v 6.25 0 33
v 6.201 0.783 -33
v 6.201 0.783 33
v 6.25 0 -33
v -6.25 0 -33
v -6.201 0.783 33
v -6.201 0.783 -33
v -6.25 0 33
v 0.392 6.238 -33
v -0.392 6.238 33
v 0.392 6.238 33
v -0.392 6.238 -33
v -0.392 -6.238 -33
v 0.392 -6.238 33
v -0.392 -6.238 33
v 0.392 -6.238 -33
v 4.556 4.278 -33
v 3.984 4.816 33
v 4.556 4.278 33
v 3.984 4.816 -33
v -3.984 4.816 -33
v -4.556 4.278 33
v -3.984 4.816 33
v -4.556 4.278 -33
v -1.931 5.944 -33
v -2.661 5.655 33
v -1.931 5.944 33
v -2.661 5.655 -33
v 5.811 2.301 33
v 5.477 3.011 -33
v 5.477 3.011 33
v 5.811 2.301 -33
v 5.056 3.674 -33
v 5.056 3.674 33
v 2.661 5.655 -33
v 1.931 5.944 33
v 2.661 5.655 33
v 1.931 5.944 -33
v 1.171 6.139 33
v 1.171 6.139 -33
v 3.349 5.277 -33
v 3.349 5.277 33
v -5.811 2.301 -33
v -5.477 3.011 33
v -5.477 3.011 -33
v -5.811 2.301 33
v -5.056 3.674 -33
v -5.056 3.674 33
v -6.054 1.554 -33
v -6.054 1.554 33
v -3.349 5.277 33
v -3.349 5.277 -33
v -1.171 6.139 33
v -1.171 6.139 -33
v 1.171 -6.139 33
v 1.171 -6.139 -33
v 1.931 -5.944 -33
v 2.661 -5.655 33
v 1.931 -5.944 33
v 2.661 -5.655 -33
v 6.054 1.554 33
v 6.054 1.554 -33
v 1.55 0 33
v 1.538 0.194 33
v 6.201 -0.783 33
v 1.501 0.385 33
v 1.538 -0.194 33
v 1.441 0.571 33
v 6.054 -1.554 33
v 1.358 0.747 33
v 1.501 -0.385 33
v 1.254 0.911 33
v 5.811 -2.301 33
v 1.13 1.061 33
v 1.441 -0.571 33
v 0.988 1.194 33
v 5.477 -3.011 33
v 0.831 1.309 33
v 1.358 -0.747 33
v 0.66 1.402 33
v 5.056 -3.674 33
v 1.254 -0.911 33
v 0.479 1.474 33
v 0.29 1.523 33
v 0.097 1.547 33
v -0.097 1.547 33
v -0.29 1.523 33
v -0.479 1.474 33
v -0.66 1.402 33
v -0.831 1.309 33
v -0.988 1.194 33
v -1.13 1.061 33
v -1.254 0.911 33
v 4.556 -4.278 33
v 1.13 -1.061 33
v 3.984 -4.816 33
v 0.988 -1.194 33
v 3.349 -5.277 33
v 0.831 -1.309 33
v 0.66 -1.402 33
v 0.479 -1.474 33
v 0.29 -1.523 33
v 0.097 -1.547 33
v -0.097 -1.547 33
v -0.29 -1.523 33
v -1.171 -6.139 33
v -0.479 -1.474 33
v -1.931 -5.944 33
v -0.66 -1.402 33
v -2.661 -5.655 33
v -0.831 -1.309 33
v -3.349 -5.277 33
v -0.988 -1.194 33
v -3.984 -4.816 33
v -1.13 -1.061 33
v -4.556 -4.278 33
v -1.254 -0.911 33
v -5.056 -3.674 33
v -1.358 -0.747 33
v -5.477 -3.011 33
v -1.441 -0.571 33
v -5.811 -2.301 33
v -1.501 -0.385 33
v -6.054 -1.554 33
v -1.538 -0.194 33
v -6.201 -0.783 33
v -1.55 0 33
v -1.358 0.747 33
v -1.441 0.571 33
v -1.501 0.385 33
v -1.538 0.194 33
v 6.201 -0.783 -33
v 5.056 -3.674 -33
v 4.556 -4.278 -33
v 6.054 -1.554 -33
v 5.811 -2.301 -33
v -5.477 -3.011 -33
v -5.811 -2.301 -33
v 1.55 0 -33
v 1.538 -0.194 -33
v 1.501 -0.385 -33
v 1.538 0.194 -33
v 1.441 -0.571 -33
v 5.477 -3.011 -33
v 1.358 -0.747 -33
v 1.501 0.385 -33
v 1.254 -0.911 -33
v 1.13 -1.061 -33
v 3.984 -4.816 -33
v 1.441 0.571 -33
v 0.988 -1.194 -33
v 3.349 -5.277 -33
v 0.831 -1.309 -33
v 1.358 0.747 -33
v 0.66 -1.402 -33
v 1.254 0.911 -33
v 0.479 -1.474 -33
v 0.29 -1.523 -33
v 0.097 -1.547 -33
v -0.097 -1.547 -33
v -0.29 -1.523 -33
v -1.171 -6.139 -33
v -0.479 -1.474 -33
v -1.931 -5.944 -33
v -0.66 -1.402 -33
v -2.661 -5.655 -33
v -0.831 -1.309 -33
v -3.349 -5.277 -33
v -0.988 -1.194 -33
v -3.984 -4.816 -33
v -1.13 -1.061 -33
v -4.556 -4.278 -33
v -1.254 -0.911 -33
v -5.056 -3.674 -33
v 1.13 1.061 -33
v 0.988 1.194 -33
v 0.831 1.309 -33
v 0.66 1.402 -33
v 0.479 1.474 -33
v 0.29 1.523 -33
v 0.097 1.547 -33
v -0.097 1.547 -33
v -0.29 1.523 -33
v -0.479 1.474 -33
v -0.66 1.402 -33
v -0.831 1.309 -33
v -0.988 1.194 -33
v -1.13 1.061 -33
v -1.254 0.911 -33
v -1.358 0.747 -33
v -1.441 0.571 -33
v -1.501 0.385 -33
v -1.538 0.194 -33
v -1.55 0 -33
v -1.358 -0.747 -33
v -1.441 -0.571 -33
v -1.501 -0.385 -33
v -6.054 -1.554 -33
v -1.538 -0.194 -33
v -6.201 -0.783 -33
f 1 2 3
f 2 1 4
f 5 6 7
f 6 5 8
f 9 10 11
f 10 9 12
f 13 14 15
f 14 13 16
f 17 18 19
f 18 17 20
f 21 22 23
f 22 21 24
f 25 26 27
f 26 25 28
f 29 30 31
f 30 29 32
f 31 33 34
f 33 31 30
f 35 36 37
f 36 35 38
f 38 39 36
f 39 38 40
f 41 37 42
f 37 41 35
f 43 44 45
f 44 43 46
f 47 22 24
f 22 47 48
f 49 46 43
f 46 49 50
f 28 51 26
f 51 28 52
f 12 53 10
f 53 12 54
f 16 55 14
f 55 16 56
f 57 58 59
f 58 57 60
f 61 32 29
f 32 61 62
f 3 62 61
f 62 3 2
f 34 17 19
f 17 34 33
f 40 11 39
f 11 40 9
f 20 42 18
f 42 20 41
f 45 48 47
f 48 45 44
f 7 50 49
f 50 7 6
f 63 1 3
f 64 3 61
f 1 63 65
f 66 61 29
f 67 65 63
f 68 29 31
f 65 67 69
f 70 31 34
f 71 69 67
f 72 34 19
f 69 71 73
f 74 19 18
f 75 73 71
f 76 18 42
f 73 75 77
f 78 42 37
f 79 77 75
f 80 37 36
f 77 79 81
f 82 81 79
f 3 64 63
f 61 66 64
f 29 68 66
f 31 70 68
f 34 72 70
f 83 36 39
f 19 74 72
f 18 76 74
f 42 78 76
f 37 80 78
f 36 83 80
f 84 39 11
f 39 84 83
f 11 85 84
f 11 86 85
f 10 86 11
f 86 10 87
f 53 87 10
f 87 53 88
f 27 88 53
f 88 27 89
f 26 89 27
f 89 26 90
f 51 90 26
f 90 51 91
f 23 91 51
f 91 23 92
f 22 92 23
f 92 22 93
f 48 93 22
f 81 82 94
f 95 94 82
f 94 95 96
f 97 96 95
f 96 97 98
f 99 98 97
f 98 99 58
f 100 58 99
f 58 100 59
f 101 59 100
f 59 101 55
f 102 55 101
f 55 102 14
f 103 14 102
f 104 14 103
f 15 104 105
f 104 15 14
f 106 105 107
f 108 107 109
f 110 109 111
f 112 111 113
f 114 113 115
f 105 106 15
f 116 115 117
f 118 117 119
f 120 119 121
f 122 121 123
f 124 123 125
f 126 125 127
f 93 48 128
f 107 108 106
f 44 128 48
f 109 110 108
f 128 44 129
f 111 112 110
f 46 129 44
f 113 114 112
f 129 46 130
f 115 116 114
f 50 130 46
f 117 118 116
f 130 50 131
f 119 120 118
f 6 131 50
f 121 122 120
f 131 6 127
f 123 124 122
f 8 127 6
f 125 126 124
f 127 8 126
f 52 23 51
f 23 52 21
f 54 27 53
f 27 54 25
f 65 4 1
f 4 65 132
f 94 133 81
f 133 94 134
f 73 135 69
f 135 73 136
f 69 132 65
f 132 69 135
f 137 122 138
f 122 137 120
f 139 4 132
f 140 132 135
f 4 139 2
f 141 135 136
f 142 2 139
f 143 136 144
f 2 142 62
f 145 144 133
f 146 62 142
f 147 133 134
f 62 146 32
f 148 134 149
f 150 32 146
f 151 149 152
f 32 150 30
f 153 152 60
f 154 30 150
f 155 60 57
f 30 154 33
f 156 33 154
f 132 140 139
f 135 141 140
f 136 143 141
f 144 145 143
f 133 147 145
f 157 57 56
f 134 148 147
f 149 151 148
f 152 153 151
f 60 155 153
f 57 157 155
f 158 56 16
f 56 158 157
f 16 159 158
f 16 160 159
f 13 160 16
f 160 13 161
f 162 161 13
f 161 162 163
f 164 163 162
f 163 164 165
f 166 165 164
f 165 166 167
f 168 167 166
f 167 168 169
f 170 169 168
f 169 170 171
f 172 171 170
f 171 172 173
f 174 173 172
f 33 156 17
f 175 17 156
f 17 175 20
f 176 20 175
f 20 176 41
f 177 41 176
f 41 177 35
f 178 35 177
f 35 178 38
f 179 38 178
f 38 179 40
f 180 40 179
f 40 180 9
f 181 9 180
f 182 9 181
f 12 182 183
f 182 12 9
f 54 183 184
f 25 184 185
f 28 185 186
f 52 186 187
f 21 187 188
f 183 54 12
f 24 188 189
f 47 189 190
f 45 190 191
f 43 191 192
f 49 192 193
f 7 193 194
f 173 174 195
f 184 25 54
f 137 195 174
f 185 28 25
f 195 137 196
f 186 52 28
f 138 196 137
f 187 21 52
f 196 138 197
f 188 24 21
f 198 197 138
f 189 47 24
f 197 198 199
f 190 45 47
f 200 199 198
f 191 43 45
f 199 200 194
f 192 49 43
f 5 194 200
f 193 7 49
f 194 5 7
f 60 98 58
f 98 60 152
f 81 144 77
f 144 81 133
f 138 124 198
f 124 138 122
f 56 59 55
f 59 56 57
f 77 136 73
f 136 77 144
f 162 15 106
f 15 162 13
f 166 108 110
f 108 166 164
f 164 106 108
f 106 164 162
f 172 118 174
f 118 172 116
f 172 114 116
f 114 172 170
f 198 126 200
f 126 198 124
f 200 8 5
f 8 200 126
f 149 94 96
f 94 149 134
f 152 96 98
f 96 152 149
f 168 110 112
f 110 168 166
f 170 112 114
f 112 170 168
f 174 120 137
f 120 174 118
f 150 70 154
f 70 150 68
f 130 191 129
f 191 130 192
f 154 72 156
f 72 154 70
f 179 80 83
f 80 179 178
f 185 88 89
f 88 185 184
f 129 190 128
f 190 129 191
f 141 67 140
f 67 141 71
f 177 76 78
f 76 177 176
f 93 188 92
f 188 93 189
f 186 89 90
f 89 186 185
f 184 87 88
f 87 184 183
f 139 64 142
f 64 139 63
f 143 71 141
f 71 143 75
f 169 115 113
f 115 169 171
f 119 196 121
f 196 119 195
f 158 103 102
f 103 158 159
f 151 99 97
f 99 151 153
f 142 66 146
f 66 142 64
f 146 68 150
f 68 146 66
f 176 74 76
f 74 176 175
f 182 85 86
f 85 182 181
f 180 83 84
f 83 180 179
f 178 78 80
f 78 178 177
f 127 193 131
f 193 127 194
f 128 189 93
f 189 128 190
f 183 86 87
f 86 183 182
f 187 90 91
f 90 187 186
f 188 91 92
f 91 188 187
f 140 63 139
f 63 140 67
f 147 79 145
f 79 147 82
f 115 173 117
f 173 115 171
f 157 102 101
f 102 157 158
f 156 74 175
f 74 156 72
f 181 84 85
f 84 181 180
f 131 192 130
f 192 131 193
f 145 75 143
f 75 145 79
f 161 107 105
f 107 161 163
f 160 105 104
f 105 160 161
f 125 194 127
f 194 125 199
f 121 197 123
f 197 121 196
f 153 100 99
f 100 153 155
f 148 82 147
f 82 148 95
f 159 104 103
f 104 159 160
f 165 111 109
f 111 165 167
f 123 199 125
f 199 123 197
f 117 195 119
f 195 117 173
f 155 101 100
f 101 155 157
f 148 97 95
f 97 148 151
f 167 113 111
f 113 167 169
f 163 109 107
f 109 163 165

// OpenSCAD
$fn = 50;


difference() {
	union() {
		translate(v = [0, 0, -33.0000000000]) {
			cylinder(h = 66, r = 6.2500000000);
		}
	}
	union() {
		translate(v = [0, 0, -100.0000000000]) {
			cylinder(h = 200, r = 1.5500000000);
		}
	}
}
